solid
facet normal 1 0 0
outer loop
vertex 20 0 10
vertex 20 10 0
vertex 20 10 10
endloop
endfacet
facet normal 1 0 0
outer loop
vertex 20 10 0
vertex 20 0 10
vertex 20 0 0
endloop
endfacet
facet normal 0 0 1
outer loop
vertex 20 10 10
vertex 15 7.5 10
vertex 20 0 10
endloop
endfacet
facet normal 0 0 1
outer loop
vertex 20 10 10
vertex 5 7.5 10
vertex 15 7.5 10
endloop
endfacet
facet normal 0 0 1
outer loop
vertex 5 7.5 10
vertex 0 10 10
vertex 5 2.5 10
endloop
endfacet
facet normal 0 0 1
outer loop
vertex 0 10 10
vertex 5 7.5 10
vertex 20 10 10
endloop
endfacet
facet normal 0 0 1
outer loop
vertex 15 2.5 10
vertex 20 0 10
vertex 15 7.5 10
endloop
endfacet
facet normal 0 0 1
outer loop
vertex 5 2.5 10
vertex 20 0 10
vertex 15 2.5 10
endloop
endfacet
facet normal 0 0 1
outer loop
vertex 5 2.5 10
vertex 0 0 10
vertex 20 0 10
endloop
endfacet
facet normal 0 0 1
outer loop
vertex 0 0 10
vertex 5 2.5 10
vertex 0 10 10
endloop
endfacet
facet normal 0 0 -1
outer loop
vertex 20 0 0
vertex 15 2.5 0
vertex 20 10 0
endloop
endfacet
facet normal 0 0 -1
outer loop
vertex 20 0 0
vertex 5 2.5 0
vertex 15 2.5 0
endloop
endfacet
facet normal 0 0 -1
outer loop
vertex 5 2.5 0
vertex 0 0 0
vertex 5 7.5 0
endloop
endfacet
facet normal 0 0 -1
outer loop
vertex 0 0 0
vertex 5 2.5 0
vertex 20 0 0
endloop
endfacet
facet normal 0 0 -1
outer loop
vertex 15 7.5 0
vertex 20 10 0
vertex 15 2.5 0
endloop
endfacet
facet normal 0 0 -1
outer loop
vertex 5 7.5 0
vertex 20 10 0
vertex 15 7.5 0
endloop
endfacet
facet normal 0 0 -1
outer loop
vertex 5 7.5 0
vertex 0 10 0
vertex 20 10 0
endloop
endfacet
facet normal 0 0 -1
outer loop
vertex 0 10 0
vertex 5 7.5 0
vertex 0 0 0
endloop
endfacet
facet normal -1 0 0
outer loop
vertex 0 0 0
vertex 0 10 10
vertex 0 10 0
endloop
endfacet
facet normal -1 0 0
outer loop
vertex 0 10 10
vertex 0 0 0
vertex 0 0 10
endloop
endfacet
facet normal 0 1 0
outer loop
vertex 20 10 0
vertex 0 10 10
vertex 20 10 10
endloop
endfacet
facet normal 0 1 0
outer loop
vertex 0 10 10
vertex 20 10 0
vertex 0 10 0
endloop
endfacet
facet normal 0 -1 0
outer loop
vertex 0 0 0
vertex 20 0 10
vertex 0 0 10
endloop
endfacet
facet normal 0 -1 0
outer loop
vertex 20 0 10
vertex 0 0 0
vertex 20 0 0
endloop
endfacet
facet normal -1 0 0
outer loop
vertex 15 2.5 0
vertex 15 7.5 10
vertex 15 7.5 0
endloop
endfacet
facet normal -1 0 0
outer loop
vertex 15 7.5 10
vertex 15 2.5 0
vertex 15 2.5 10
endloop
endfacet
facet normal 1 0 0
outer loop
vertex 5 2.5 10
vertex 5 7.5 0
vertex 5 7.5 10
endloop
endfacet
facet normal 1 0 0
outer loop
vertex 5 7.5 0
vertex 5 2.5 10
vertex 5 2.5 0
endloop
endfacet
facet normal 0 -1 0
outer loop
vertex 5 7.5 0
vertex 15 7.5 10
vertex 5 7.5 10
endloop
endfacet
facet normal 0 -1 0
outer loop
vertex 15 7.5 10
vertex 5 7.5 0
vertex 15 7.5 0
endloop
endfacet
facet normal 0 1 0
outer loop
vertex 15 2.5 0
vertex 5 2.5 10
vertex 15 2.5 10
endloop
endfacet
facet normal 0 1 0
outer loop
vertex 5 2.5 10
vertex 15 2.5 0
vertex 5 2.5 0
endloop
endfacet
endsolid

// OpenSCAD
module o(height = 10, width = 20, depth = 10) {
  difference() {
    cube([width, depth, height]);
    translate([width/4, depth/4, 0])
    cube([width/2, depth/2, height + 1]);
  }
}

o();
